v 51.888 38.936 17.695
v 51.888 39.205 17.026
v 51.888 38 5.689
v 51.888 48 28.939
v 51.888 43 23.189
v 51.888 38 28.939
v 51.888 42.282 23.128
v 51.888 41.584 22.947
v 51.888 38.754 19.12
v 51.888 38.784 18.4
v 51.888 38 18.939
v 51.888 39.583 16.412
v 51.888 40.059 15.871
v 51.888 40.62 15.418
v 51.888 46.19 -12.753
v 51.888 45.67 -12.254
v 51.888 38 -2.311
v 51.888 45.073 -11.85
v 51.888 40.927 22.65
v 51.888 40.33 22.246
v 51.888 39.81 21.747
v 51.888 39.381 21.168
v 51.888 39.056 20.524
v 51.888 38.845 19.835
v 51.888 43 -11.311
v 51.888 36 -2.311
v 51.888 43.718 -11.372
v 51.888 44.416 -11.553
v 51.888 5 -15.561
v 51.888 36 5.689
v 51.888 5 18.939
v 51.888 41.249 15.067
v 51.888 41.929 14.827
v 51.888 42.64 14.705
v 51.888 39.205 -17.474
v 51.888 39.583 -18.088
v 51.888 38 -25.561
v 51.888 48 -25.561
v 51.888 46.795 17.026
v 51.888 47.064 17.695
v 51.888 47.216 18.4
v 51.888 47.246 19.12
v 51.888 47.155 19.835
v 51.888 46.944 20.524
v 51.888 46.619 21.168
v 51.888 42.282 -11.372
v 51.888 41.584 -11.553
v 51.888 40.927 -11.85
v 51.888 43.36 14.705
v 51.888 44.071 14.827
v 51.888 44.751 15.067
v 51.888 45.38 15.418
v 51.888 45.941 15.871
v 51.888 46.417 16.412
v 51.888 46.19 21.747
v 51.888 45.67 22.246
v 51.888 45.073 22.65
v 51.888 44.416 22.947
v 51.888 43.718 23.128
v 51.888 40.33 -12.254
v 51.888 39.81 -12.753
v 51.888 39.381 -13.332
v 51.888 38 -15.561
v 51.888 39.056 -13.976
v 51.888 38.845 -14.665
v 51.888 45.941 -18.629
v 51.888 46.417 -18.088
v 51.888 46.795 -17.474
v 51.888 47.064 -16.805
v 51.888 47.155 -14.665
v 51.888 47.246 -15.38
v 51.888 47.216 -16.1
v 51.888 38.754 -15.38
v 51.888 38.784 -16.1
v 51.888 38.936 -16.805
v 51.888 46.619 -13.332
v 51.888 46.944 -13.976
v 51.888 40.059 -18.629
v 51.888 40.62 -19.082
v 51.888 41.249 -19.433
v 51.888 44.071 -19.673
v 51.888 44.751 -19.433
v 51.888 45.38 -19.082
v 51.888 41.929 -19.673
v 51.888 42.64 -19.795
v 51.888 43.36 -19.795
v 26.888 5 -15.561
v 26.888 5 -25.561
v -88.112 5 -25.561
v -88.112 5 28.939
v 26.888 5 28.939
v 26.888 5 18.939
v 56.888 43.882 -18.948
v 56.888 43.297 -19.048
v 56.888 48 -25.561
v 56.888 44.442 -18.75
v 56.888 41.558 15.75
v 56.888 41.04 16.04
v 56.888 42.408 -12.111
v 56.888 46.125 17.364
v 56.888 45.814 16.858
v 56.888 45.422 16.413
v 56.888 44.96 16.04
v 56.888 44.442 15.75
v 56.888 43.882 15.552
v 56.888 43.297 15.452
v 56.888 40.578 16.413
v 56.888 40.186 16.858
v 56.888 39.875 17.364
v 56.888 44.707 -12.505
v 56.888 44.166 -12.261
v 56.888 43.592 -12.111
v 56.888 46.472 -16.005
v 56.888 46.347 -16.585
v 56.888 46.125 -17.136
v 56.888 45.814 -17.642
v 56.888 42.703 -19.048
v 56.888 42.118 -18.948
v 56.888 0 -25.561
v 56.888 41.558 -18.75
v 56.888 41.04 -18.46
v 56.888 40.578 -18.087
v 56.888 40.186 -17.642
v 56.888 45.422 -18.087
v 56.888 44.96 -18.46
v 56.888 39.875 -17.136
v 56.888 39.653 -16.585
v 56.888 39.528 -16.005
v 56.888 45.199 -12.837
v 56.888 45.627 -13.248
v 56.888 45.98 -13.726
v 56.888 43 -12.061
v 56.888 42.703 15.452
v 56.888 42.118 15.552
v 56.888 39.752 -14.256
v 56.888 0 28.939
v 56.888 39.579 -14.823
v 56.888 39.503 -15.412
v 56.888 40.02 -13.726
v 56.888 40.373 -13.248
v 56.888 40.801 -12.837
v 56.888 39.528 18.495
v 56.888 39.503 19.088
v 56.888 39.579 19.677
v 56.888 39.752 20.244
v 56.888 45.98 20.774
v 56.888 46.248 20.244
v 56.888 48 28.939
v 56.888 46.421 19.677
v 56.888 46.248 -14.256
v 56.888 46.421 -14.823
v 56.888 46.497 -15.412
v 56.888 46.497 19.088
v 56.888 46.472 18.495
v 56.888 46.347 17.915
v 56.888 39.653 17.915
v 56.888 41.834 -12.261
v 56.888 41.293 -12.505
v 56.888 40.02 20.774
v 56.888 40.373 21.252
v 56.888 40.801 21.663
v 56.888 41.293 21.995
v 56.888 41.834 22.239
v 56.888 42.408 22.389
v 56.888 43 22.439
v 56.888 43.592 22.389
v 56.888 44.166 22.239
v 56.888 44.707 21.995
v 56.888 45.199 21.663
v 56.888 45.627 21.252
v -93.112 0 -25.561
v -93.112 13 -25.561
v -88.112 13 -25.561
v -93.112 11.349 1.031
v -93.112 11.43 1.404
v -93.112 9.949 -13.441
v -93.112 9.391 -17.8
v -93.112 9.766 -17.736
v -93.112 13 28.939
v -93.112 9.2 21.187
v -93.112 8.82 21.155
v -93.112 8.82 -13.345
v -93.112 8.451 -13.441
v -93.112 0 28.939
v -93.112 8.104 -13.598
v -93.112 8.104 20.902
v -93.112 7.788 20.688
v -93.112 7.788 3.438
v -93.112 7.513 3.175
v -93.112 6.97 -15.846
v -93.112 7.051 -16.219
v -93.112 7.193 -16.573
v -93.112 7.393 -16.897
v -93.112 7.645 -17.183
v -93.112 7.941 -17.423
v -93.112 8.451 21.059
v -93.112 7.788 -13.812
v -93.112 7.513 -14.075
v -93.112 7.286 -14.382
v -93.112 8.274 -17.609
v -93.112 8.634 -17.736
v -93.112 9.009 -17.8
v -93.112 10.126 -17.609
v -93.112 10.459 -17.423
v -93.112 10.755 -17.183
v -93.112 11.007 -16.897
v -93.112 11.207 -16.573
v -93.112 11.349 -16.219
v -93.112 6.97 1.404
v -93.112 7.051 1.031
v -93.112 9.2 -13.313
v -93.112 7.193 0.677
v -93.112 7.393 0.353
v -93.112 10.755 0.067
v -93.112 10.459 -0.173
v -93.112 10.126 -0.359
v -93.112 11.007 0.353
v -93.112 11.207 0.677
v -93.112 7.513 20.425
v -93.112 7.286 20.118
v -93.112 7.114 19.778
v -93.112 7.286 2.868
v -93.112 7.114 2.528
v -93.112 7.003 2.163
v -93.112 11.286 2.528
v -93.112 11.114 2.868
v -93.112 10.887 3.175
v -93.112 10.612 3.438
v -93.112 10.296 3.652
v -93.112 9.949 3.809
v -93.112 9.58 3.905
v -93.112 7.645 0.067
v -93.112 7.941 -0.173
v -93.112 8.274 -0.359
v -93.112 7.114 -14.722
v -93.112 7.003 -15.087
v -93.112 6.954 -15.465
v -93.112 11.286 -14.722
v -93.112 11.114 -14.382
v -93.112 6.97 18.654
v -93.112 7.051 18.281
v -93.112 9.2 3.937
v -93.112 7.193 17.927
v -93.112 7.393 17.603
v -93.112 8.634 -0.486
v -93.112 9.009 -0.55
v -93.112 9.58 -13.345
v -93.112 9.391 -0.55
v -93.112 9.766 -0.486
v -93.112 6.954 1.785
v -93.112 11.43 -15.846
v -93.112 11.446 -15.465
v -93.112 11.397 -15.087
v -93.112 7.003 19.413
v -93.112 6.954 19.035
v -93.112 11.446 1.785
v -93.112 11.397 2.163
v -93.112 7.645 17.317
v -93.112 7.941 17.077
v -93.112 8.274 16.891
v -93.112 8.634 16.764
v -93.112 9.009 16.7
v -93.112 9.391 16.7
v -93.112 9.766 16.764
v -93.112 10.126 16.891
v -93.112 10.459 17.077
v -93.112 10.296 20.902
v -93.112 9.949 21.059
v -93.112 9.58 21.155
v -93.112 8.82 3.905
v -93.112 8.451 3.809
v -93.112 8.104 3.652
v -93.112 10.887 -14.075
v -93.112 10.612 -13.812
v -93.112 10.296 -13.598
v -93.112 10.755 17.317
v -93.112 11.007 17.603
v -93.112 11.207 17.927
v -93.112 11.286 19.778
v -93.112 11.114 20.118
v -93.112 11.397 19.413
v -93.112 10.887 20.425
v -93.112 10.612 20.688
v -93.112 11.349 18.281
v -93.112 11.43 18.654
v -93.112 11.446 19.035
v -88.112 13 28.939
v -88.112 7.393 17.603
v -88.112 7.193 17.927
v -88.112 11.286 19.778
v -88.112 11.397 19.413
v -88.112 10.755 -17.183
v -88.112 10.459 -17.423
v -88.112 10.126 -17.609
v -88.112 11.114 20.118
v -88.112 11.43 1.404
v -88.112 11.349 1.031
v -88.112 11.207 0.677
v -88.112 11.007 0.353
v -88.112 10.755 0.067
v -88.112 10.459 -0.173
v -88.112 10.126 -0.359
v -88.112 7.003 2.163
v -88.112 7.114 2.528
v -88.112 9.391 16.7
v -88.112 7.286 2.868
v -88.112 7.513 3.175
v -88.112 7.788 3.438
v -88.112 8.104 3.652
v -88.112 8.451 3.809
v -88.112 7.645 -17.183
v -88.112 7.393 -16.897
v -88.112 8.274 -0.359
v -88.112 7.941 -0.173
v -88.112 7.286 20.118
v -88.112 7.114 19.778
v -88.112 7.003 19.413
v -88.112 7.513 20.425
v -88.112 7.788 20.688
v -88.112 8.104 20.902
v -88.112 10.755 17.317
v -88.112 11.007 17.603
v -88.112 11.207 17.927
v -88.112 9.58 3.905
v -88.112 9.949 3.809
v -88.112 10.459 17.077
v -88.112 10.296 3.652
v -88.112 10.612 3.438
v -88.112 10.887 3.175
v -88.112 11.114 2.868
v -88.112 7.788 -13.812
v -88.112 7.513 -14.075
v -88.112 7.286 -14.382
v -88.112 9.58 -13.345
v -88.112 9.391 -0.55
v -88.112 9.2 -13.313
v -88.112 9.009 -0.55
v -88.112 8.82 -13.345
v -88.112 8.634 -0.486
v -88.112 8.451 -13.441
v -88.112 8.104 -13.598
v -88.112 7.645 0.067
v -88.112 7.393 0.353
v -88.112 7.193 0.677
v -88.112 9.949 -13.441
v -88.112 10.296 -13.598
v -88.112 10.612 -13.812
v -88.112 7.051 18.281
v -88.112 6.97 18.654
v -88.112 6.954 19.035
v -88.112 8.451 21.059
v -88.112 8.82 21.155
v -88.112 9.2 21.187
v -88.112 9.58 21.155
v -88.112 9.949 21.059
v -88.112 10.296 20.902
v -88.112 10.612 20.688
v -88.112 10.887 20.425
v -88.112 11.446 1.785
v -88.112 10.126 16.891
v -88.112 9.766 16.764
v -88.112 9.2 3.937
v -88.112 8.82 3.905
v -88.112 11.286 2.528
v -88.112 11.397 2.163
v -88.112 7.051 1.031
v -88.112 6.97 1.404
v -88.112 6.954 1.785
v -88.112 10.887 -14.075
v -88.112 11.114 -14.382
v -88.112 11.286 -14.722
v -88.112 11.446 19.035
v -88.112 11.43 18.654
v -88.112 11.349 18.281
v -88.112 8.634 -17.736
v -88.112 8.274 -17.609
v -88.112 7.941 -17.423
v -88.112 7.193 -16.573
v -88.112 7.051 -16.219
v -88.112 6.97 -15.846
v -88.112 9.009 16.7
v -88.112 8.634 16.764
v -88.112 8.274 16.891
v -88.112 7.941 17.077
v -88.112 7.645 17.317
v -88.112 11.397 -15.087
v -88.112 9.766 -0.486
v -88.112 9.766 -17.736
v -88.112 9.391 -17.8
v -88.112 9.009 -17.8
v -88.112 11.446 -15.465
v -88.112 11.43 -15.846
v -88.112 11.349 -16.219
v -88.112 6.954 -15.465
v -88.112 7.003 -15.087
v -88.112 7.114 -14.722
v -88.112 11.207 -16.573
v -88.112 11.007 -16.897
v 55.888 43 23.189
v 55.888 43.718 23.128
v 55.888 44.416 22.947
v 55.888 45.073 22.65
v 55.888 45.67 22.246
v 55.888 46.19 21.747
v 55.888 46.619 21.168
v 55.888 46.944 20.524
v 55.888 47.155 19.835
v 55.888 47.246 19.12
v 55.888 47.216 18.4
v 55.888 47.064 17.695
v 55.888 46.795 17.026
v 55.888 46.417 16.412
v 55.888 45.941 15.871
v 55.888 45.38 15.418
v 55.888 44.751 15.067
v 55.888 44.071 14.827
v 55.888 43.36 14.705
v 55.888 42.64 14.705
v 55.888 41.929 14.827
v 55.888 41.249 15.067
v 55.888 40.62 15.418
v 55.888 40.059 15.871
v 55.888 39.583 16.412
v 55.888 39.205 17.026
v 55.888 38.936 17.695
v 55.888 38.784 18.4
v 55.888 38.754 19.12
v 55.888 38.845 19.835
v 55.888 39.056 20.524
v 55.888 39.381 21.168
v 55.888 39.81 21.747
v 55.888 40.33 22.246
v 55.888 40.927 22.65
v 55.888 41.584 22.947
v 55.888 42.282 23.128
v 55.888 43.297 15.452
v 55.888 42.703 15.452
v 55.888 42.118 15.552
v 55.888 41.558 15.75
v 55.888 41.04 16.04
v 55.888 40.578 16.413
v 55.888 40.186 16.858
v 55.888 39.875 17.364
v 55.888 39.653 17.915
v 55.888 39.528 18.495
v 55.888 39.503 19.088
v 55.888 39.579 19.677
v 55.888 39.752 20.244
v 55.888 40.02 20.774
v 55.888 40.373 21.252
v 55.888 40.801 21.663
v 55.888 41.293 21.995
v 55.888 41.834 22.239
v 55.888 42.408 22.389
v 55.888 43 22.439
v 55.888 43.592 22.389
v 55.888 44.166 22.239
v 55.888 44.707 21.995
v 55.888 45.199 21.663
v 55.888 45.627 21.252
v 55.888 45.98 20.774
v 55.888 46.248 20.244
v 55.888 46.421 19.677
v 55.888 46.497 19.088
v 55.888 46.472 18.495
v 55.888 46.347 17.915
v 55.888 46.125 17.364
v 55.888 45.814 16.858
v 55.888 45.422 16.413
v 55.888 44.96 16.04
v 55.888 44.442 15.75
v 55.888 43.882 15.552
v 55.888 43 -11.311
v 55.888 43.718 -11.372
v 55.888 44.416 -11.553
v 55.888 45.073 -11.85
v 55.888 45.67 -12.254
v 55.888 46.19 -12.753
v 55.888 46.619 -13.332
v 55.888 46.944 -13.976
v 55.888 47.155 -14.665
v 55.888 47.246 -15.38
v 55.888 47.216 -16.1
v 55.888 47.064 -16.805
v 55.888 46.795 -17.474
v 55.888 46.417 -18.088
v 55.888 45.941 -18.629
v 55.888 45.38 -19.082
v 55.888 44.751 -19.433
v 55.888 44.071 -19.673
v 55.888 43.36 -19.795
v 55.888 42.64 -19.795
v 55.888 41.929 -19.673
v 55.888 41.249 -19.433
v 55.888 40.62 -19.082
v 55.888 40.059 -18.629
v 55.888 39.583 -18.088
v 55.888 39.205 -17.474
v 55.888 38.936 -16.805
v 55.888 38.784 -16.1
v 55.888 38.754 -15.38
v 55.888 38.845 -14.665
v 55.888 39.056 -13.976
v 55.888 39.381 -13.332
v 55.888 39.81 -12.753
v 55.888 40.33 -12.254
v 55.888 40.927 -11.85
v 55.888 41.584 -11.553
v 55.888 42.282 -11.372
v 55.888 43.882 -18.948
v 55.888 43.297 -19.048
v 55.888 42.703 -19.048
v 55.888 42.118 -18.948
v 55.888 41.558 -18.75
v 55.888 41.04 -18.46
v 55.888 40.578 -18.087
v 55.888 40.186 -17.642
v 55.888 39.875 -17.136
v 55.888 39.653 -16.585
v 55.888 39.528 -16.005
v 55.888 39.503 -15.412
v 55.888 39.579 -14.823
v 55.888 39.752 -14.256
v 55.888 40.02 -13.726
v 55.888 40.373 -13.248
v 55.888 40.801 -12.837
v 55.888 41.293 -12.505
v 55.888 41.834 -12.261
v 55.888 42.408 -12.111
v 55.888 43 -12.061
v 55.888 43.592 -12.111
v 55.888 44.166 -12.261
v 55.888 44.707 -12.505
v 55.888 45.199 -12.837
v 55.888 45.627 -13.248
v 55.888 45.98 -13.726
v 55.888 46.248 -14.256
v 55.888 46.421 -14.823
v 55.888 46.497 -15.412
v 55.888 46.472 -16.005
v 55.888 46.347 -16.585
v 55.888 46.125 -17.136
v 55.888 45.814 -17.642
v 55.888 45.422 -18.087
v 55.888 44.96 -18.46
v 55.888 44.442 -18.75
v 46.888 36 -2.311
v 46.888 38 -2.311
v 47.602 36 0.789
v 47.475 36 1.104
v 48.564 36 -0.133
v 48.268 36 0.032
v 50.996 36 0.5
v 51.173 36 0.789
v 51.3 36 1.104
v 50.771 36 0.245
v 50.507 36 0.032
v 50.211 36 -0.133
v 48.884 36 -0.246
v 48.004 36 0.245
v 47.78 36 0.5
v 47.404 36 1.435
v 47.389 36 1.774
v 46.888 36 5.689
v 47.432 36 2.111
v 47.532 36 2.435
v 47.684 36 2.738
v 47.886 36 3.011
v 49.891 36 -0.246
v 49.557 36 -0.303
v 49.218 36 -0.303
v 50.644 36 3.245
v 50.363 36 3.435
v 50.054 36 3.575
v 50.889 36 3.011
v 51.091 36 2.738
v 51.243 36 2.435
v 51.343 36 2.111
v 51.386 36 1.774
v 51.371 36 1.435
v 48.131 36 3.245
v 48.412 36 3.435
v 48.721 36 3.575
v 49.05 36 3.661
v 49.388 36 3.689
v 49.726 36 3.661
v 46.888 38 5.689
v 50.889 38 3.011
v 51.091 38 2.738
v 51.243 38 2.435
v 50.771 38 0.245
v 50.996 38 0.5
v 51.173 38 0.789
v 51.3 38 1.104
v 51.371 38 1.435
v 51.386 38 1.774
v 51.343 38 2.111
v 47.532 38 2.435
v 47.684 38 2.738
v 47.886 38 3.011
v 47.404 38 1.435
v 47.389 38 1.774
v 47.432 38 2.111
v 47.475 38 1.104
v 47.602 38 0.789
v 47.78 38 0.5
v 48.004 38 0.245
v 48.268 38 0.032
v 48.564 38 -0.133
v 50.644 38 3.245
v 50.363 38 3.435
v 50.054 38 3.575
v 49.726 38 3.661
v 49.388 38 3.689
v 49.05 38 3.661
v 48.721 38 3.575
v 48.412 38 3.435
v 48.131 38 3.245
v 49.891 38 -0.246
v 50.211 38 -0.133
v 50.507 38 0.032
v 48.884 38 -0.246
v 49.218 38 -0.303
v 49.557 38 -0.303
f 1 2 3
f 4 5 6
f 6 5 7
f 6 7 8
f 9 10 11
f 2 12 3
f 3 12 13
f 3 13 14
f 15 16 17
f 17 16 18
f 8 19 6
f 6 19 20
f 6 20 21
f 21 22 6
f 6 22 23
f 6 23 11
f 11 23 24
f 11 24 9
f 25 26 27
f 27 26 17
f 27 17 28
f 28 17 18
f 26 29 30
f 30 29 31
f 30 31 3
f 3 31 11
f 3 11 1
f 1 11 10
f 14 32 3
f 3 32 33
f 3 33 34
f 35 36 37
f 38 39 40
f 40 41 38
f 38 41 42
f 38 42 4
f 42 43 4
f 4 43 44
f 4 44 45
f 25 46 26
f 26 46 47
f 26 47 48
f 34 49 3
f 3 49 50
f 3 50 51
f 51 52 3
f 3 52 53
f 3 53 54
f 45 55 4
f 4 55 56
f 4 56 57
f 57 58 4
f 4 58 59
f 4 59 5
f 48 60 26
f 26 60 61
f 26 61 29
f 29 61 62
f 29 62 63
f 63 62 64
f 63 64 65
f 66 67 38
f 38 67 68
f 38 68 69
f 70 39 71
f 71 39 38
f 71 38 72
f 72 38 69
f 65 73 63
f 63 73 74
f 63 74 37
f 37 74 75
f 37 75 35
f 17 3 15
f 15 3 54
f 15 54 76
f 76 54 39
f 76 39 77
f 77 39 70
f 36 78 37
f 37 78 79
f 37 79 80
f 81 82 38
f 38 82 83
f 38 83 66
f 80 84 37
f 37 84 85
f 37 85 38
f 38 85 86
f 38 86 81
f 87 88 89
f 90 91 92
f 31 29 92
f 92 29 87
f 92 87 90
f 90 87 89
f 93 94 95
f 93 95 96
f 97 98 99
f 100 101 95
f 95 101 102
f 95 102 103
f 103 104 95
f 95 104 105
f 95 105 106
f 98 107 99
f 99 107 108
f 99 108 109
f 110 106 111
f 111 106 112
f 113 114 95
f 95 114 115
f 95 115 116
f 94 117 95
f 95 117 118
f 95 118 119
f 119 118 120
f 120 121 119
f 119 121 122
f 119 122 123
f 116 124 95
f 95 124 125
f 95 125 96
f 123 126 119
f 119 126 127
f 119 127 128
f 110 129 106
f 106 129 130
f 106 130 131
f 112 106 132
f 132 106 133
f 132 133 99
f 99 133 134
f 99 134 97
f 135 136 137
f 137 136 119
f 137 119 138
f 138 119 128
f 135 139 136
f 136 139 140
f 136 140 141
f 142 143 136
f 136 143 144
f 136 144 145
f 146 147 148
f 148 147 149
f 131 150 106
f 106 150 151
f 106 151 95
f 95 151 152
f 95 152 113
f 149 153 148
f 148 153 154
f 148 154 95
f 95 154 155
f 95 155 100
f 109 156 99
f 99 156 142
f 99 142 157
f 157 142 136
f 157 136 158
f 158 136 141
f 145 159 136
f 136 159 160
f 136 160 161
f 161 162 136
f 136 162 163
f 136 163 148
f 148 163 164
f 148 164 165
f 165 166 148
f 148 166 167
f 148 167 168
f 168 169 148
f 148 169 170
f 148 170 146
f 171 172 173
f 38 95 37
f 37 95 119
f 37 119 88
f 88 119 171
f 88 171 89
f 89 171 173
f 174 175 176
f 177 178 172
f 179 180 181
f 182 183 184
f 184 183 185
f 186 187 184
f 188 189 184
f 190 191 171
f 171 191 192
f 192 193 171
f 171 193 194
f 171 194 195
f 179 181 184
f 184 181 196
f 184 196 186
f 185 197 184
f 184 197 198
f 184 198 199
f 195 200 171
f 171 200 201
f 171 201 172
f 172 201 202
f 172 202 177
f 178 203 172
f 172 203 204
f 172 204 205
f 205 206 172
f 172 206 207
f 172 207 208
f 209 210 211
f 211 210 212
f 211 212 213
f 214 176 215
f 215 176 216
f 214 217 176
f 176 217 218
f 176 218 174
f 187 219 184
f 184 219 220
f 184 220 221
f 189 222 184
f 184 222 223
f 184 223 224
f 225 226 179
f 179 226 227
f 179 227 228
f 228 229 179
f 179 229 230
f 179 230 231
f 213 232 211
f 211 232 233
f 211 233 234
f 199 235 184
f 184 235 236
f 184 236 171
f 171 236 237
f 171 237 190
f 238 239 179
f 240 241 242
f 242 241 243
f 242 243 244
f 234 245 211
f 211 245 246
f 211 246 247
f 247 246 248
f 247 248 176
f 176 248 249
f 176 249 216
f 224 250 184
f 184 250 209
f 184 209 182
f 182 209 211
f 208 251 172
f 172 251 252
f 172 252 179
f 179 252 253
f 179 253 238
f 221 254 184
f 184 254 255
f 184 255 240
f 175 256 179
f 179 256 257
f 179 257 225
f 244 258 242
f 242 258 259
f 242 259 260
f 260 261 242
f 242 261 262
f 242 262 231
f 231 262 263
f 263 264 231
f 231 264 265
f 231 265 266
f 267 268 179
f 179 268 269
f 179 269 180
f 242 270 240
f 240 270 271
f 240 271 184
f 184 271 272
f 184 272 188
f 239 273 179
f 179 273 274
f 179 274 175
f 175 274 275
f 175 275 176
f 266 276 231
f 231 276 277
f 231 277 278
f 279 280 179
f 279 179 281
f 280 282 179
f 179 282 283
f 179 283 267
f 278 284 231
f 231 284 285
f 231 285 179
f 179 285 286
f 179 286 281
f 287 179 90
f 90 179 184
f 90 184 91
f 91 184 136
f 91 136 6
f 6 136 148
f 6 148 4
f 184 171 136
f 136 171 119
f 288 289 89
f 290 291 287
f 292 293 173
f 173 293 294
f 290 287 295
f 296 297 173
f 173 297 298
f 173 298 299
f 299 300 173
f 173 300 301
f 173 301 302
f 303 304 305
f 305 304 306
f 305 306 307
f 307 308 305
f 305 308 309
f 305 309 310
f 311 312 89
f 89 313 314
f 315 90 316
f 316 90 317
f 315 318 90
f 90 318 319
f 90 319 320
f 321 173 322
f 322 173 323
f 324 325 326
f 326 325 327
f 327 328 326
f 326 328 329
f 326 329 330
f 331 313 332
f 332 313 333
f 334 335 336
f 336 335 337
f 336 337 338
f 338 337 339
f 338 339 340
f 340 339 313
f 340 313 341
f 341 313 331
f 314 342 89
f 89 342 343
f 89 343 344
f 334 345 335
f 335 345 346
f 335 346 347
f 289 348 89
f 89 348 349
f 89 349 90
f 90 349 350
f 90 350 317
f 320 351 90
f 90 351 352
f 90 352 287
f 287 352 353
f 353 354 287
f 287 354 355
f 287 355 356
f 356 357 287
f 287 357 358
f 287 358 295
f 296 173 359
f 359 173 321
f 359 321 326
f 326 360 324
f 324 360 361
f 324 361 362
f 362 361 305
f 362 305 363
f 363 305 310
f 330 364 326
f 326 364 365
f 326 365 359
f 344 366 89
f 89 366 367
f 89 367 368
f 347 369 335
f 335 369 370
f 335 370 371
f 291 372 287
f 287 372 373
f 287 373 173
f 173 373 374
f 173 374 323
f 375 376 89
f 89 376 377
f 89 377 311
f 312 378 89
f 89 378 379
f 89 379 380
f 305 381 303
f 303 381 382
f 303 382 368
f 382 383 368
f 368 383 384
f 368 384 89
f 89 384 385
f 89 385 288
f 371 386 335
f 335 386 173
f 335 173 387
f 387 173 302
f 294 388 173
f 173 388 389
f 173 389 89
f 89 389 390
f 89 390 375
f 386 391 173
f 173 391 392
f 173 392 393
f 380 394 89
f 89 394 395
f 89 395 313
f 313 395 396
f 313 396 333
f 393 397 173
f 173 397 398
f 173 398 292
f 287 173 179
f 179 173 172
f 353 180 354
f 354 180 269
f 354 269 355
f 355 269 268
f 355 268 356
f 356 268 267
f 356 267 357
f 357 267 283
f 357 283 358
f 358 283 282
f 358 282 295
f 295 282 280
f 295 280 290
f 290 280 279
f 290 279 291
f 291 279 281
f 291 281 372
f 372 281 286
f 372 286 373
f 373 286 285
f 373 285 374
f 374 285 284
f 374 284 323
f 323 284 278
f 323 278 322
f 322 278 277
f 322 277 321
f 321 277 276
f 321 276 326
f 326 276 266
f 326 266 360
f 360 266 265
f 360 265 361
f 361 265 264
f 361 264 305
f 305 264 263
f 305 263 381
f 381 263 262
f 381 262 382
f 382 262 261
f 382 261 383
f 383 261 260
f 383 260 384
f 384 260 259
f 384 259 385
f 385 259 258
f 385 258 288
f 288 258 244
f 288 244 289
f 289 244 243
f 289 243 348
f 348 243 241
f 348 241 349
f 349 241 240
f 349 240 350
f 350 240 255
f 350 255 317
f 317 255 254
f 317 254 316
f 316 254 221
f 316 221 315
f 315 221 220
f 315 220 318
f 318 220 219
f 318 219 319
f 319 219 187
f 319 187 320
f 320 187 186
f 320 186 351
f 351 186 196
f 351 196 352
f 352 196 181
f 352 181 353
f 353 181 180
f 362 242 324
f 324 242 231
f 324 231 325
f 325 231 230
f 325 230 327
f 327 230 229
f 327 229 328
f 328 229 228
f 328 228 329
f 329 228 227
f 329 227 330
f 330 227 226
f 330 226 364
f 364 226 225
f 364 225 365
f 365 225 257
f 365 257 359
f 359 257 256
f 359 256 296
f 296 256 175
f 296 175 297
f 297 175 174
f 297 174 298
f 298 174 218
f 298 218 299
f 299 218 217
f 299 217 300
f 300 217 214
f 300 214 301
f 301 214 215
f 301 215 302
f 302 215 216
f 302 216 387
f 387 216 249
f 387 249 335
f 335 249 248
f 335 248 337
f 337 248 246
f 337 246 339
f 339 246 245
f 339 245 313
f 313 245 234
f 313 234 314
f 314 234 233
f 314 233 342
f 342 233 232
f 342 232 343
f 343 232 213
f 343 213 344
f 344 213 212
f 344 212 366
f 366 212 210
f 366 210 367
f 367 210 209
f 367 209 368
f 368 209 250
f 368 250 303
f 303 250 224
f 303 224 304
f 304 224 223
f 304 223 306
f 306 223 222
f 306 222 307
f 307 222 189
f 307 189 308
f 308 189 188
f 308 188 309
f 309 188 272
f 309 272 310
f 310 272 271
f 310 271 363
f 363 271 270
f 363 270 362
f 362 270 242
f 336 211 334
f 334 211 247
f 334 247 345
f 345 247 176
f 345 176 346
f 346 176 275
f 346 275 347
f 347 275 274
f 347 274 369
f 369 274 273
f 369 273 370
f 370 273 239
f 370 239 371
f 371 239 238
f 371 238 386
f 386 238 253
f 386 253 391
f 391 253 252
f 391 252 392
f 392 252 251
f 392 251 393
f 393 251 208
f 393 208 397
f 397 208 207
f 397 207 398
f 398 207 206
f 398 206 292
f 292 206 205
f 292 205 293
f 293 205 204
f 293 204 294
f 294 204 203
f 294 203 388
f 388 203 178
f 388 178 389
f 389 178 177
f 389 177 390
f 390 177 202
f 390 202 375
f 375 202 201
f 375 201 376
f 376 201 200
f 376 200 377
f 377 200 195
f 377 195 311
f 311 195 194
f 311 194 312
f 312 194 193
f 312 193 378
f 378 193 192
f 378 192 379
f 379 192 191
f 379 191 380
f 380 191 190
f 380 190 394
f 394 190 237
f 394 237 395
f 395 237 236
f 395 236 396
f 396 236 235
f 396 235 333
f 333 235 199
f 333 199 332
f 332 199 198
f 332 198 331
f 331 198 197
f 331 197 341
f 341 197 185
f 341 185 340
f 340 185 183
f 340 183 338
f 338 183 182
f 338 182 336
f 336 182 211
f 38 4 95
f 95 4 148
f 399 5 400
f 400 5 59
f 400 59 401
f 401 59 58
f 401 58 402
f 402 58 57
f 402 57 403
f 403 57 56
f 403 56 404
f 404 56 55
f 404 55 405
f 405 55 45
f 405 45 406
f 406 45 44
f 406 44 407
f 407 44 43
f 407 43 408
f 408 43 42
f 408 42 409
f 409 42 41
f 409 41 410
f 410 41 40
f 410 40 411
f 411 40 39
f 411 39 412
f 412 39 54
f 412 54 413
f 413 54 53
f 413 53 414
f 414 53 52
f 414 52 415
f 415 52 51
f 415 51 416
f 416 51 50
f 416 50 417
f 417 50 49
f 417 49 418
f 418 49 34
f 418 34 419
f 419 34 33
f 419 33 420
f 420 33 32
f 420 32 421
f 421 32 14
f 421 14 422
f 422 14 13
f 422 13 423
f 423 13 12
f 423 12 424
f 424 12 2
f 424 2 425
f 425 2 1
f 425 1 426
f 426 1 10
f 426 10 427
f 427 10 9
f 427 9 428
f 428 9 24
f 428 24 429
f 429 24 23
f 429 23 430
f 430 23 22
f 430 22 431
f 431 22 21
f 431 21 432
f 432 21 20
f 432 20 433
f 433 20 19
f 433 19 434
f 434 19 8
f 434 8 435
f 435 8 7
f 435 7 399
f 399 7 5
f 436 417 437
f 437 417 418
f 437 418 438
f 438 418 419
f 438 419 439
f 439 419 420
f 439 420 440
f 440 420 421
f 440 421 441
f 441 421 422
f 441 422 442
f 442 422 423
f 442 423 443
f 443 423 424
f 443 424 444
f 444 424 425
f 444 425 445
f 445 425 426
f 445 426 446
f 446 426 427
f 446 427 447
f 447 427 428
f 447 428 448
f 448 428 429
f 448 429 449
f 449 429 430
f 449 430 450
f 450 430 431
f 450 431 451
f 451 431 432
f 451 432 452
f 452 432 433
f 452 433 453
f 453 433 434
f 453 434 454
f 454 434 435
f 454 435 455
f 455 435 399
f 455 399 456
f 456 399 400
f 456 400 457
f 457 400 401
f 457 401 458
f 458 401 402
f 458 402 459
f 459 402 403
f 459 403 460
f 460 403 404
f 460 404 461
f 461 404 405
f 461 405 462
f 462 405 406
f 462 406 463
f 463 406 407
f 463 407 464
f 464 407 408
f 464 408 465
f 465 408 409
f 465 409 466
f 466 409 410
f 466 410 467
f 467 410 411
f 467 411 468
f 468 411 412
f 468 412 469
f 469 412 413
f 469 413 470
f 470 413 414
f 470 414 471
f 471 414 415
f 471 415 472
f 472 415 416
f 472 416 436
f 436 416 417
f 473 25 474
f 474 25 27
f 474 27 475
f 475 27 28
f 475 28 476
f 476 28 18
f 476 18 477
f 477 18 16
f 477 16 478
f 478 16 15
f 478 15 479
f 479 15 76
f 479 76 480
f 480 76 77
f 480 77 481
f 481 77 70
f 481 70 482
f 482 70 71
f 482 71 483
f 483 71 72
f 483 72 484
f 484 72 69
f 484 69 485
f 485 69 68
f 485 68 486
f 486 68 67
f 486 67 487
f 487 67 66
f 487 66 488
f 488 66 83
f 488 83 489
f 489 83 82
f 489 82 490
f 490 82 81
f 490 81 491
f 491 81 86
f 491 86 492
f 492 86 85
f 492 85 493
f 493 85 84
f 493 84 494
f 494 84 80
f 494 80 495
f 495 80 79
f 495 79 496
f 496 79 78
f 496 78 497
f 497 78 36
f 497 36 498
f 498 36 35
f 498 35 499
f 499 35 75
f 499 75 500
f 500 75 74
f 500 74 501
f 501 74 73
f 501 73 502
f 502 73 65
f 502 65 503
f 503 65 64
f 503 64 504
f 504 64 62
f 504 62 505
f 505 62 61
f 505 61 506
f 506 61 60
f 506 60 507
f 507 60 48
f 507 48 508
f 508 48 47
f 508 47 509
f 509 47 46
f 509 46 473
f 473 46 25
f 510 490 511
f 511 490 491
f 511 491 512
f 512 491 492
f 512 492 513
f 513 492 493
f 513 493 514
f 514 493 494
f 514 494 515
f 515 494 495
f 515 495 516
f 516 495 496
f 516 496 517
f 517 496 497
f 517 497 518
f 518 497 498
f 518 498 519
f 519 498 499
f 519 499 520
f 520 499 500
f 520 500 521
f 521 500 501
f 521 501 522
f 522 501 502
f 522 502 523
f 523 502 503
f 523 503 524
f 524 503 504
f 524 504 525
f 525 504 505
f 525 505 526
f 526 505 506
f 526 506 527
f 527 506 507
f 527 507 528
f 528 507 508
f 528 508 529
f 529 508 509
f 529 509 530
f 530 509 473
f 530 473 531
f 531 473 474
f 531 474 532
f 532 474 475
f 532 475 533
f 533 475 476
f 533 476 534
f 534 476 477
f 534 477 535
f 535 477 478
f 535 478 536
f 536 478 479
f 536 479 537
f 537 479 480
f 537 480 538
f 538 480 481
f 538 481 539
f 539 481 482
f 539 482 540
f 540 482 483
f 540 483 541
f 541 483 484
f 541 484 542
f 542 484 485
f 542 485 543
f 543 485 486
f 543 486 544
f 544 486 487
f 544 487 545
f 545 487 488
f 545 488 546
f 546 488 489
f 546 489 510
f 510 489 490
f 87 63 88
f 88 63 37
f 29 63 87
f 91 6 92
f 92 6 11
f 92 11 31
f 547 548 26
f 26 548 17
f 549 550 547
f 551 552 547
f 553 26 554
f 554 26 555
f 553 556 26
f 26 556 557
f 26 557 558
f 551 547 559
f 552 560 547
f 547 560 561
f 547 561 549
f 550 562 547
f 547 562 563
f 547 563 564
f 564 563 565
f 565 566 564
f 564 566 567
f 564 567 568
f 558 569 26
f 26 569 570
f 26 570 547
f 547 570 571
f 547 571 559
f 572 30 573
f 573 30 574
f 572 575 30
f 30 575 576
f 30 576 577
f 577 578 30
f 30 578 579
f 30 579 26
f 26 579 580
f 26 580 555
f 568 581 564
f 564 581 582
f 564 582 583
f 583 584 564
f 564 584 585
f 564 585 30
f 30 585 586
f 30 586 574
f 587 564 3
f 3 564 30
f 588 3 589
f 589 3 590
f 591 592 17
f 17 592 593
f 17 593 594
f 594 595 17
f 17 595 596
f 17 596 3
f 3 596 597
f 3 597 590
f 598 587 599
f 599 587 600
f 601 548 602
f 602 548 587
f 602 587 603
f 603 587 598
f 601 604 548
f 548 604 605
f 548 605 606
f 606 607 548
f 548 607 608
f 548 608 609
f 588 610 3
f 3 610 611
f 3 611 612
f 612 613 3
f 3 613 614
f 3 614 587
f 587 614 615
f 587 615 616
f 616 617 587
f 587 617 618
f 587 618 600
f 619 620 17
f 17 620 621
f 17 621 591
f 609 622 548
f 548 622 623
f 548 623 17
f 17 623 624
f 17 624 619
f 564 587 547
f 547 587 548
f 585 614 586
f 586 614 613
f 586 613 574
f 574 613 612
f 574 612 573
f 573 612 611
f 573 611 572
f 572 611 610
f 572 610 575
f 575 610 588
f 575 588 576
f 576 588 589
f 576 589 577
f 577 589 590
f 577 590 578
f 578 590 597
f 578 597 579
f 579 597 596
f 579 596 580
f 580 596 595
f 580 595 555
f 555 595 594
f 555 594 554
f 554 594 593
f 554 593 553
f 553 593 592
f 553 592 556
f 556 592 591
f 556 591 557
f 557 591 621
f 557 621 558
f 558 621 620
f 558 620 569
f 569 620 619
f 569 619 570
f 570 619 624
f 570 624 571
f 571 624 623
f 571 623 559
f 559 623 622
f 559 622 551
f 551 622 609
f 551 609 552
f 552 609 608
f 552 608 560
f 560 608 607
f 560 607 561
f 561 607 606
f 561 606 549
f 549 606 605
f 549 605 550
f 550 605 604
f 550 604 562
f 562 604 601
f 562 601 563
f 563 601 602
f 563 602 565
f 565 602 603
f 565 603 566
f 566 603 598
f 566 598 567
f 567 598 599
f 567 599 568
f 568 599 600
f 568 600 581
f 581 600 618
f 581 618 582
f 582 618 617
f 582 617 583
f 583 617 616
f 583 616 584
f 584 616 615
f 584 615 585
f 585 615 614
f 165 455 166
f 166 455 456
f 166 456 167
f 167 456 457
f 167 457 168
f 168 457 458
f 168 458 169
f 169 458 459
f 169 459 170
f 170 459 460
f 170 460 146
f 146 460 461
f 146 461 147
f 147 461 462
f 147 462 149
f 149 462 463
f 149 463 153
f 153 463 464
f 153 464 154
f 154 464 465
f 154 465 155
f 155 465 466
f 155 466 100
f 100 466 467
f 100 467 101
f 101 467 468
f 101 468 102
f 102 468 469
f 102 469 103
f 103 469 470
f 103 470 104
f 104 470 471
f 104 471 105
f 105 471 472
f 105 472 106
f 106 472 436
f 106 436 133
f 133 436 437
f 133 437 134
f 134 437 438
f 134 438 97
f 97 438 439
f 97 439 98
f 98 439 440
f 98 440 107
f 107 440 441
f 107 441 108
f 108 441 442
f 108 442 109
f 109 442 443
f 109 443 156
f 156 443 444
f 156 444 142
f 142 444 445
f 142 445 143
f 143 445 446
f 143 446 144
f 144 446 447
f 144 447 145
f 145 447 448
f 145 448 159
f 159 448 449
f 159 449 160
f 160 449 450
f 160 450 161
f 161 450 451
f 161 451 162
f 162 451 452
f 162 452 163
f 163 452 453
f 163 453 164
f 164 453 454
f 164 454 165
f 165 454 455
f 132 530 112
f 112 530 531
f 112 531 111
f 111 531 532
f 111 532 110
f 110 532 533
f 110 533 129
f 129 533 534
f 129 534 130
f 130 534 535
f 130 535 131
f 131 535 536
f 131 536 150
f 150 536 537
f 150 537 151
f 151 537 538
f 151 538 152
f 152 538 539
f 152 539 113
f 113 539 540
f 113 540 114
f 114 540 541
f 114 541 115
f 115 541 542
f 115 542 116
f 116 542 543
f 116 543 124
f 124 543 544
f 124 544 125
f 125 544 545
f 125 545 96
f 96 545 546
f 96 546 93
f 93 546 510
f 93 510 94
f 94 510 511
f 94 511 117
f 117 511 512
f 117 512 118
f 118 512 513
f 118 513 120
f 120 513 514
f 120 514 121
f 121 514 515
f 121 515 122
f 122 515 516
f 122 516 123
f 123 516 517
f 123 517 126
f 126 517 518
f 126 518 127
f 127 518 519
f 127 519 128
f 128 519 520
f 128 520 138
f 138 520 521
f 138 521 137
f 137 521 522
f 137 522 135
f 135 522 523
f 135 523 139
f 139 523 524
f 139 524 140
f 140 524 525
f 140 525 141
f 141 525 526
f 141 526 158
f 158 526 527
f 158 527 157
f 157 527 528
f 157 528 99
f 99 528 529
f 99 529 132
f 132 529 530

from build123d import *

# Parameters (mm, degrees)
SKETCH1_W                 = 150
SKETCH1_H                 = 54.5
BOSS_EXTRUDE1_DEPTH       = 5
SKETCH2_W                 = 5
SKETCH2_H                 = 54.5
BOSS_EXTRUDE2_DEPTH       = 8
F_8_CLEARANCE_HOLE1_D     = 4.4958
F_8_CLEARANCE_HOLE1_DEPTH = 17
F_8_CLEARANCE_HOLE1_TIP   = 1.350674586
SKETCH7_W                 = 5
SKETCH7_H                 = 54.5
BOSS_EXTRUDE3_DEPTH       = 43
SKETCH8_R                 = 4.25
CUT_EXTRUDE1_DEPTH        = 4
RIB1_REACH                = 120.085
SKETCH10_WALL_W           = 279.571445908
SKETCH10_WALL_H           = 10
RIB3_REACH                = 120.085
SKETCH12_WALL_W           = 279.571445908
SKETCH12_WALL_H           = 10
SKETCH13_W                = 8
SKETCH13_H                = 2
BOSS_EXTRUDE4_DEPTH       = 5
SKETCH14_R                = 2
CUT_EXTRUDE2_DEPTH        = 2
SKETCH15_R                = 3.5
CUT_EXTRUDE3_DEPTH        = 1


with BuildPart() as part:
    # Sketch1 → Boss-Extrude1 (new body)
    with BuildSketch(Plane(origin=(0, 0, 0), x_dir=(1, 0, 0), z_dir=(0, 1, 0))):
        with Locations((-18.112463826, -1.689393939)):
            Rectangle(SKETCH1_W, SKETCH1_H)
    extrude(amount=BOSS_EXTRUDE1_DEPTH)

    # Sketch2 → Boss-Extrude2 (add)
    with BuildSketch(Plane(origin=(0, 5, 0), x_dir=(1, 0, 0), z_dir=(0, 1, 0))):
        with Locations((-90.612463826, -1.689393939)):
            Rectangle(SKETCH2_W, SKETCH2_H)
    extrude(amount=BOSS_EXTRUDE2_DEPTH)

    # #8 Clearance Hole1
    with Locations(Plane(origin=(-93.112463826, 9.2, -15.560606061), x_dir=(0, 0, -1), z_dir=(-1, 0, 0))):
        with Locations((0, 0), (-17.25, 0), (-34.5, 0)):
            Hole(F_8_CLEARANCE_HOLE1_D / 2, depth=F_8_CLEARANCE_HOLE1_DEPTH)
            with Locations((0, 0, -(F_8_CLEARANCE_HOLE1_DEPTH + F_8_CLEARANCE_HOLE1_TIP / 2))):  # 118° drill point
                Cone(0, F_8_CLEARANCE_HOLE1_D / 2, F_8_CLEARANCE_HOLE1_TIP, mode=Mode.SUBTRACT)

    # Sketch7 → Boss-Extrude3 (add)
    with BuildSketch(Plane(origin=(0, 5, 0), x_dir=(1, 0, 0), z_dir=(0, 1, 0))):
        with Locations((54.387536174, -1.689393939)):
            Rectangle(SKETCH7_W, SKETCH7_H)
    extrude(amount=BOSS_EXTRUDE3_DEPTH)

    # Sketch8 → Cut-Extrude1 (cut)
    with BuildSketch(Plane.ZY.offset(-51.887536174)):
        with Locations((-15.560606061, 43)):
            Circle(SKETCH8_R)
        with Locations((18.939393939, 43)):
            Circle(SKETCH8_R)
    extrude(amount=-CUT_EXTRUDE1_DEPTH, mode=Mode.SUBTRACT)

    # Sketch10 wall → Rib1 (add, up to next)
    with BuildSketch(Plane(origin=(39.387536174, 21.5, -25.560606061), x_dir=(-0.603857687995, -0.797092148154, 0), z_dir=(-0.797092148154, 0.603857687995, 0)), mode=Mode.PRIVATE) as rib1_sk1:
        with Locations((0, 5)):
            Rectangle(SKETCH10_WALL_W, SKETCH10_WALL_H)
    rib1_tool1 = extrude(rib1_sk1.sketch, amount=-RIB1_REACH, mode=Mode.PRIVATE) - part.part
    add(rib1_tool1.solids().sort_by_distance((39.387536174, 21.5, -25.560606061))[0])

    # Sketch12 wall → Rib3 (add, up to next)
    with BuildSketch(Plane(origin=(39.387536174, 21.5, 28.939393939), x_dir=(-0.603857687995, -0.797092148154, 0), z_dir=(0.797092148154, -0.603857687995, 0)), mode=Mode.PRIVATE) as rib3_sk1:
        with Locations((0, 5)):
            Rectangle(SKETCH12_WALL_W, SKETCH12_WALL_H)
    rib3_tool1 = extrude(rib3_sk1.sketch, amount=RIB3_REACH, mode=Mode.PRIVATE) - part.part
    add(rib3_tool1.solids().sort_by_distance((39.387536174, 21.5, 28.939393939))[0])

    # Sketch13 → Boss-Extrude4 (add)
    with BuildSketch(Plane.ZY.offset(-51.887536174)):
        with Locations((1.689393939, 37)):
            Rectangle(SKETCH13_W, SKETCH13_H)
    extrude(amount=BOSS_EXTRUDE4_DEPTH)

    # Sketch14 → Cut-Extrude2 (cut)
    with BuildSketch(Plane(origin=(0, 38, 0), x_dir=(1, 0, 0), z_dir=(0, 1, 0))):
        with Locations(Location((49.387536174, -1.689393939, 0), (0, 0, 270))):
            Circle(SKETCH14_R)
    extrude(amount=-CUT_EXTRUDE2_DEPTH, mode=Mode.SUBTRACT)

    # Sketch15 → Cut-Extrude3 (cut)
    with BuildSketch(Plane.ZY.offset(-55.887536174)):
        with Locations((-15.560606061, 43)):
            Circle(SKETCH15_R)
        with Locations((18.939393939, 43)):
            Circle(SKETCH15_R)
    extrude(amount=-CUT_EXTRUDE3_DEPTH, mode=Mode.SUBTRACT)


solid = part.part
